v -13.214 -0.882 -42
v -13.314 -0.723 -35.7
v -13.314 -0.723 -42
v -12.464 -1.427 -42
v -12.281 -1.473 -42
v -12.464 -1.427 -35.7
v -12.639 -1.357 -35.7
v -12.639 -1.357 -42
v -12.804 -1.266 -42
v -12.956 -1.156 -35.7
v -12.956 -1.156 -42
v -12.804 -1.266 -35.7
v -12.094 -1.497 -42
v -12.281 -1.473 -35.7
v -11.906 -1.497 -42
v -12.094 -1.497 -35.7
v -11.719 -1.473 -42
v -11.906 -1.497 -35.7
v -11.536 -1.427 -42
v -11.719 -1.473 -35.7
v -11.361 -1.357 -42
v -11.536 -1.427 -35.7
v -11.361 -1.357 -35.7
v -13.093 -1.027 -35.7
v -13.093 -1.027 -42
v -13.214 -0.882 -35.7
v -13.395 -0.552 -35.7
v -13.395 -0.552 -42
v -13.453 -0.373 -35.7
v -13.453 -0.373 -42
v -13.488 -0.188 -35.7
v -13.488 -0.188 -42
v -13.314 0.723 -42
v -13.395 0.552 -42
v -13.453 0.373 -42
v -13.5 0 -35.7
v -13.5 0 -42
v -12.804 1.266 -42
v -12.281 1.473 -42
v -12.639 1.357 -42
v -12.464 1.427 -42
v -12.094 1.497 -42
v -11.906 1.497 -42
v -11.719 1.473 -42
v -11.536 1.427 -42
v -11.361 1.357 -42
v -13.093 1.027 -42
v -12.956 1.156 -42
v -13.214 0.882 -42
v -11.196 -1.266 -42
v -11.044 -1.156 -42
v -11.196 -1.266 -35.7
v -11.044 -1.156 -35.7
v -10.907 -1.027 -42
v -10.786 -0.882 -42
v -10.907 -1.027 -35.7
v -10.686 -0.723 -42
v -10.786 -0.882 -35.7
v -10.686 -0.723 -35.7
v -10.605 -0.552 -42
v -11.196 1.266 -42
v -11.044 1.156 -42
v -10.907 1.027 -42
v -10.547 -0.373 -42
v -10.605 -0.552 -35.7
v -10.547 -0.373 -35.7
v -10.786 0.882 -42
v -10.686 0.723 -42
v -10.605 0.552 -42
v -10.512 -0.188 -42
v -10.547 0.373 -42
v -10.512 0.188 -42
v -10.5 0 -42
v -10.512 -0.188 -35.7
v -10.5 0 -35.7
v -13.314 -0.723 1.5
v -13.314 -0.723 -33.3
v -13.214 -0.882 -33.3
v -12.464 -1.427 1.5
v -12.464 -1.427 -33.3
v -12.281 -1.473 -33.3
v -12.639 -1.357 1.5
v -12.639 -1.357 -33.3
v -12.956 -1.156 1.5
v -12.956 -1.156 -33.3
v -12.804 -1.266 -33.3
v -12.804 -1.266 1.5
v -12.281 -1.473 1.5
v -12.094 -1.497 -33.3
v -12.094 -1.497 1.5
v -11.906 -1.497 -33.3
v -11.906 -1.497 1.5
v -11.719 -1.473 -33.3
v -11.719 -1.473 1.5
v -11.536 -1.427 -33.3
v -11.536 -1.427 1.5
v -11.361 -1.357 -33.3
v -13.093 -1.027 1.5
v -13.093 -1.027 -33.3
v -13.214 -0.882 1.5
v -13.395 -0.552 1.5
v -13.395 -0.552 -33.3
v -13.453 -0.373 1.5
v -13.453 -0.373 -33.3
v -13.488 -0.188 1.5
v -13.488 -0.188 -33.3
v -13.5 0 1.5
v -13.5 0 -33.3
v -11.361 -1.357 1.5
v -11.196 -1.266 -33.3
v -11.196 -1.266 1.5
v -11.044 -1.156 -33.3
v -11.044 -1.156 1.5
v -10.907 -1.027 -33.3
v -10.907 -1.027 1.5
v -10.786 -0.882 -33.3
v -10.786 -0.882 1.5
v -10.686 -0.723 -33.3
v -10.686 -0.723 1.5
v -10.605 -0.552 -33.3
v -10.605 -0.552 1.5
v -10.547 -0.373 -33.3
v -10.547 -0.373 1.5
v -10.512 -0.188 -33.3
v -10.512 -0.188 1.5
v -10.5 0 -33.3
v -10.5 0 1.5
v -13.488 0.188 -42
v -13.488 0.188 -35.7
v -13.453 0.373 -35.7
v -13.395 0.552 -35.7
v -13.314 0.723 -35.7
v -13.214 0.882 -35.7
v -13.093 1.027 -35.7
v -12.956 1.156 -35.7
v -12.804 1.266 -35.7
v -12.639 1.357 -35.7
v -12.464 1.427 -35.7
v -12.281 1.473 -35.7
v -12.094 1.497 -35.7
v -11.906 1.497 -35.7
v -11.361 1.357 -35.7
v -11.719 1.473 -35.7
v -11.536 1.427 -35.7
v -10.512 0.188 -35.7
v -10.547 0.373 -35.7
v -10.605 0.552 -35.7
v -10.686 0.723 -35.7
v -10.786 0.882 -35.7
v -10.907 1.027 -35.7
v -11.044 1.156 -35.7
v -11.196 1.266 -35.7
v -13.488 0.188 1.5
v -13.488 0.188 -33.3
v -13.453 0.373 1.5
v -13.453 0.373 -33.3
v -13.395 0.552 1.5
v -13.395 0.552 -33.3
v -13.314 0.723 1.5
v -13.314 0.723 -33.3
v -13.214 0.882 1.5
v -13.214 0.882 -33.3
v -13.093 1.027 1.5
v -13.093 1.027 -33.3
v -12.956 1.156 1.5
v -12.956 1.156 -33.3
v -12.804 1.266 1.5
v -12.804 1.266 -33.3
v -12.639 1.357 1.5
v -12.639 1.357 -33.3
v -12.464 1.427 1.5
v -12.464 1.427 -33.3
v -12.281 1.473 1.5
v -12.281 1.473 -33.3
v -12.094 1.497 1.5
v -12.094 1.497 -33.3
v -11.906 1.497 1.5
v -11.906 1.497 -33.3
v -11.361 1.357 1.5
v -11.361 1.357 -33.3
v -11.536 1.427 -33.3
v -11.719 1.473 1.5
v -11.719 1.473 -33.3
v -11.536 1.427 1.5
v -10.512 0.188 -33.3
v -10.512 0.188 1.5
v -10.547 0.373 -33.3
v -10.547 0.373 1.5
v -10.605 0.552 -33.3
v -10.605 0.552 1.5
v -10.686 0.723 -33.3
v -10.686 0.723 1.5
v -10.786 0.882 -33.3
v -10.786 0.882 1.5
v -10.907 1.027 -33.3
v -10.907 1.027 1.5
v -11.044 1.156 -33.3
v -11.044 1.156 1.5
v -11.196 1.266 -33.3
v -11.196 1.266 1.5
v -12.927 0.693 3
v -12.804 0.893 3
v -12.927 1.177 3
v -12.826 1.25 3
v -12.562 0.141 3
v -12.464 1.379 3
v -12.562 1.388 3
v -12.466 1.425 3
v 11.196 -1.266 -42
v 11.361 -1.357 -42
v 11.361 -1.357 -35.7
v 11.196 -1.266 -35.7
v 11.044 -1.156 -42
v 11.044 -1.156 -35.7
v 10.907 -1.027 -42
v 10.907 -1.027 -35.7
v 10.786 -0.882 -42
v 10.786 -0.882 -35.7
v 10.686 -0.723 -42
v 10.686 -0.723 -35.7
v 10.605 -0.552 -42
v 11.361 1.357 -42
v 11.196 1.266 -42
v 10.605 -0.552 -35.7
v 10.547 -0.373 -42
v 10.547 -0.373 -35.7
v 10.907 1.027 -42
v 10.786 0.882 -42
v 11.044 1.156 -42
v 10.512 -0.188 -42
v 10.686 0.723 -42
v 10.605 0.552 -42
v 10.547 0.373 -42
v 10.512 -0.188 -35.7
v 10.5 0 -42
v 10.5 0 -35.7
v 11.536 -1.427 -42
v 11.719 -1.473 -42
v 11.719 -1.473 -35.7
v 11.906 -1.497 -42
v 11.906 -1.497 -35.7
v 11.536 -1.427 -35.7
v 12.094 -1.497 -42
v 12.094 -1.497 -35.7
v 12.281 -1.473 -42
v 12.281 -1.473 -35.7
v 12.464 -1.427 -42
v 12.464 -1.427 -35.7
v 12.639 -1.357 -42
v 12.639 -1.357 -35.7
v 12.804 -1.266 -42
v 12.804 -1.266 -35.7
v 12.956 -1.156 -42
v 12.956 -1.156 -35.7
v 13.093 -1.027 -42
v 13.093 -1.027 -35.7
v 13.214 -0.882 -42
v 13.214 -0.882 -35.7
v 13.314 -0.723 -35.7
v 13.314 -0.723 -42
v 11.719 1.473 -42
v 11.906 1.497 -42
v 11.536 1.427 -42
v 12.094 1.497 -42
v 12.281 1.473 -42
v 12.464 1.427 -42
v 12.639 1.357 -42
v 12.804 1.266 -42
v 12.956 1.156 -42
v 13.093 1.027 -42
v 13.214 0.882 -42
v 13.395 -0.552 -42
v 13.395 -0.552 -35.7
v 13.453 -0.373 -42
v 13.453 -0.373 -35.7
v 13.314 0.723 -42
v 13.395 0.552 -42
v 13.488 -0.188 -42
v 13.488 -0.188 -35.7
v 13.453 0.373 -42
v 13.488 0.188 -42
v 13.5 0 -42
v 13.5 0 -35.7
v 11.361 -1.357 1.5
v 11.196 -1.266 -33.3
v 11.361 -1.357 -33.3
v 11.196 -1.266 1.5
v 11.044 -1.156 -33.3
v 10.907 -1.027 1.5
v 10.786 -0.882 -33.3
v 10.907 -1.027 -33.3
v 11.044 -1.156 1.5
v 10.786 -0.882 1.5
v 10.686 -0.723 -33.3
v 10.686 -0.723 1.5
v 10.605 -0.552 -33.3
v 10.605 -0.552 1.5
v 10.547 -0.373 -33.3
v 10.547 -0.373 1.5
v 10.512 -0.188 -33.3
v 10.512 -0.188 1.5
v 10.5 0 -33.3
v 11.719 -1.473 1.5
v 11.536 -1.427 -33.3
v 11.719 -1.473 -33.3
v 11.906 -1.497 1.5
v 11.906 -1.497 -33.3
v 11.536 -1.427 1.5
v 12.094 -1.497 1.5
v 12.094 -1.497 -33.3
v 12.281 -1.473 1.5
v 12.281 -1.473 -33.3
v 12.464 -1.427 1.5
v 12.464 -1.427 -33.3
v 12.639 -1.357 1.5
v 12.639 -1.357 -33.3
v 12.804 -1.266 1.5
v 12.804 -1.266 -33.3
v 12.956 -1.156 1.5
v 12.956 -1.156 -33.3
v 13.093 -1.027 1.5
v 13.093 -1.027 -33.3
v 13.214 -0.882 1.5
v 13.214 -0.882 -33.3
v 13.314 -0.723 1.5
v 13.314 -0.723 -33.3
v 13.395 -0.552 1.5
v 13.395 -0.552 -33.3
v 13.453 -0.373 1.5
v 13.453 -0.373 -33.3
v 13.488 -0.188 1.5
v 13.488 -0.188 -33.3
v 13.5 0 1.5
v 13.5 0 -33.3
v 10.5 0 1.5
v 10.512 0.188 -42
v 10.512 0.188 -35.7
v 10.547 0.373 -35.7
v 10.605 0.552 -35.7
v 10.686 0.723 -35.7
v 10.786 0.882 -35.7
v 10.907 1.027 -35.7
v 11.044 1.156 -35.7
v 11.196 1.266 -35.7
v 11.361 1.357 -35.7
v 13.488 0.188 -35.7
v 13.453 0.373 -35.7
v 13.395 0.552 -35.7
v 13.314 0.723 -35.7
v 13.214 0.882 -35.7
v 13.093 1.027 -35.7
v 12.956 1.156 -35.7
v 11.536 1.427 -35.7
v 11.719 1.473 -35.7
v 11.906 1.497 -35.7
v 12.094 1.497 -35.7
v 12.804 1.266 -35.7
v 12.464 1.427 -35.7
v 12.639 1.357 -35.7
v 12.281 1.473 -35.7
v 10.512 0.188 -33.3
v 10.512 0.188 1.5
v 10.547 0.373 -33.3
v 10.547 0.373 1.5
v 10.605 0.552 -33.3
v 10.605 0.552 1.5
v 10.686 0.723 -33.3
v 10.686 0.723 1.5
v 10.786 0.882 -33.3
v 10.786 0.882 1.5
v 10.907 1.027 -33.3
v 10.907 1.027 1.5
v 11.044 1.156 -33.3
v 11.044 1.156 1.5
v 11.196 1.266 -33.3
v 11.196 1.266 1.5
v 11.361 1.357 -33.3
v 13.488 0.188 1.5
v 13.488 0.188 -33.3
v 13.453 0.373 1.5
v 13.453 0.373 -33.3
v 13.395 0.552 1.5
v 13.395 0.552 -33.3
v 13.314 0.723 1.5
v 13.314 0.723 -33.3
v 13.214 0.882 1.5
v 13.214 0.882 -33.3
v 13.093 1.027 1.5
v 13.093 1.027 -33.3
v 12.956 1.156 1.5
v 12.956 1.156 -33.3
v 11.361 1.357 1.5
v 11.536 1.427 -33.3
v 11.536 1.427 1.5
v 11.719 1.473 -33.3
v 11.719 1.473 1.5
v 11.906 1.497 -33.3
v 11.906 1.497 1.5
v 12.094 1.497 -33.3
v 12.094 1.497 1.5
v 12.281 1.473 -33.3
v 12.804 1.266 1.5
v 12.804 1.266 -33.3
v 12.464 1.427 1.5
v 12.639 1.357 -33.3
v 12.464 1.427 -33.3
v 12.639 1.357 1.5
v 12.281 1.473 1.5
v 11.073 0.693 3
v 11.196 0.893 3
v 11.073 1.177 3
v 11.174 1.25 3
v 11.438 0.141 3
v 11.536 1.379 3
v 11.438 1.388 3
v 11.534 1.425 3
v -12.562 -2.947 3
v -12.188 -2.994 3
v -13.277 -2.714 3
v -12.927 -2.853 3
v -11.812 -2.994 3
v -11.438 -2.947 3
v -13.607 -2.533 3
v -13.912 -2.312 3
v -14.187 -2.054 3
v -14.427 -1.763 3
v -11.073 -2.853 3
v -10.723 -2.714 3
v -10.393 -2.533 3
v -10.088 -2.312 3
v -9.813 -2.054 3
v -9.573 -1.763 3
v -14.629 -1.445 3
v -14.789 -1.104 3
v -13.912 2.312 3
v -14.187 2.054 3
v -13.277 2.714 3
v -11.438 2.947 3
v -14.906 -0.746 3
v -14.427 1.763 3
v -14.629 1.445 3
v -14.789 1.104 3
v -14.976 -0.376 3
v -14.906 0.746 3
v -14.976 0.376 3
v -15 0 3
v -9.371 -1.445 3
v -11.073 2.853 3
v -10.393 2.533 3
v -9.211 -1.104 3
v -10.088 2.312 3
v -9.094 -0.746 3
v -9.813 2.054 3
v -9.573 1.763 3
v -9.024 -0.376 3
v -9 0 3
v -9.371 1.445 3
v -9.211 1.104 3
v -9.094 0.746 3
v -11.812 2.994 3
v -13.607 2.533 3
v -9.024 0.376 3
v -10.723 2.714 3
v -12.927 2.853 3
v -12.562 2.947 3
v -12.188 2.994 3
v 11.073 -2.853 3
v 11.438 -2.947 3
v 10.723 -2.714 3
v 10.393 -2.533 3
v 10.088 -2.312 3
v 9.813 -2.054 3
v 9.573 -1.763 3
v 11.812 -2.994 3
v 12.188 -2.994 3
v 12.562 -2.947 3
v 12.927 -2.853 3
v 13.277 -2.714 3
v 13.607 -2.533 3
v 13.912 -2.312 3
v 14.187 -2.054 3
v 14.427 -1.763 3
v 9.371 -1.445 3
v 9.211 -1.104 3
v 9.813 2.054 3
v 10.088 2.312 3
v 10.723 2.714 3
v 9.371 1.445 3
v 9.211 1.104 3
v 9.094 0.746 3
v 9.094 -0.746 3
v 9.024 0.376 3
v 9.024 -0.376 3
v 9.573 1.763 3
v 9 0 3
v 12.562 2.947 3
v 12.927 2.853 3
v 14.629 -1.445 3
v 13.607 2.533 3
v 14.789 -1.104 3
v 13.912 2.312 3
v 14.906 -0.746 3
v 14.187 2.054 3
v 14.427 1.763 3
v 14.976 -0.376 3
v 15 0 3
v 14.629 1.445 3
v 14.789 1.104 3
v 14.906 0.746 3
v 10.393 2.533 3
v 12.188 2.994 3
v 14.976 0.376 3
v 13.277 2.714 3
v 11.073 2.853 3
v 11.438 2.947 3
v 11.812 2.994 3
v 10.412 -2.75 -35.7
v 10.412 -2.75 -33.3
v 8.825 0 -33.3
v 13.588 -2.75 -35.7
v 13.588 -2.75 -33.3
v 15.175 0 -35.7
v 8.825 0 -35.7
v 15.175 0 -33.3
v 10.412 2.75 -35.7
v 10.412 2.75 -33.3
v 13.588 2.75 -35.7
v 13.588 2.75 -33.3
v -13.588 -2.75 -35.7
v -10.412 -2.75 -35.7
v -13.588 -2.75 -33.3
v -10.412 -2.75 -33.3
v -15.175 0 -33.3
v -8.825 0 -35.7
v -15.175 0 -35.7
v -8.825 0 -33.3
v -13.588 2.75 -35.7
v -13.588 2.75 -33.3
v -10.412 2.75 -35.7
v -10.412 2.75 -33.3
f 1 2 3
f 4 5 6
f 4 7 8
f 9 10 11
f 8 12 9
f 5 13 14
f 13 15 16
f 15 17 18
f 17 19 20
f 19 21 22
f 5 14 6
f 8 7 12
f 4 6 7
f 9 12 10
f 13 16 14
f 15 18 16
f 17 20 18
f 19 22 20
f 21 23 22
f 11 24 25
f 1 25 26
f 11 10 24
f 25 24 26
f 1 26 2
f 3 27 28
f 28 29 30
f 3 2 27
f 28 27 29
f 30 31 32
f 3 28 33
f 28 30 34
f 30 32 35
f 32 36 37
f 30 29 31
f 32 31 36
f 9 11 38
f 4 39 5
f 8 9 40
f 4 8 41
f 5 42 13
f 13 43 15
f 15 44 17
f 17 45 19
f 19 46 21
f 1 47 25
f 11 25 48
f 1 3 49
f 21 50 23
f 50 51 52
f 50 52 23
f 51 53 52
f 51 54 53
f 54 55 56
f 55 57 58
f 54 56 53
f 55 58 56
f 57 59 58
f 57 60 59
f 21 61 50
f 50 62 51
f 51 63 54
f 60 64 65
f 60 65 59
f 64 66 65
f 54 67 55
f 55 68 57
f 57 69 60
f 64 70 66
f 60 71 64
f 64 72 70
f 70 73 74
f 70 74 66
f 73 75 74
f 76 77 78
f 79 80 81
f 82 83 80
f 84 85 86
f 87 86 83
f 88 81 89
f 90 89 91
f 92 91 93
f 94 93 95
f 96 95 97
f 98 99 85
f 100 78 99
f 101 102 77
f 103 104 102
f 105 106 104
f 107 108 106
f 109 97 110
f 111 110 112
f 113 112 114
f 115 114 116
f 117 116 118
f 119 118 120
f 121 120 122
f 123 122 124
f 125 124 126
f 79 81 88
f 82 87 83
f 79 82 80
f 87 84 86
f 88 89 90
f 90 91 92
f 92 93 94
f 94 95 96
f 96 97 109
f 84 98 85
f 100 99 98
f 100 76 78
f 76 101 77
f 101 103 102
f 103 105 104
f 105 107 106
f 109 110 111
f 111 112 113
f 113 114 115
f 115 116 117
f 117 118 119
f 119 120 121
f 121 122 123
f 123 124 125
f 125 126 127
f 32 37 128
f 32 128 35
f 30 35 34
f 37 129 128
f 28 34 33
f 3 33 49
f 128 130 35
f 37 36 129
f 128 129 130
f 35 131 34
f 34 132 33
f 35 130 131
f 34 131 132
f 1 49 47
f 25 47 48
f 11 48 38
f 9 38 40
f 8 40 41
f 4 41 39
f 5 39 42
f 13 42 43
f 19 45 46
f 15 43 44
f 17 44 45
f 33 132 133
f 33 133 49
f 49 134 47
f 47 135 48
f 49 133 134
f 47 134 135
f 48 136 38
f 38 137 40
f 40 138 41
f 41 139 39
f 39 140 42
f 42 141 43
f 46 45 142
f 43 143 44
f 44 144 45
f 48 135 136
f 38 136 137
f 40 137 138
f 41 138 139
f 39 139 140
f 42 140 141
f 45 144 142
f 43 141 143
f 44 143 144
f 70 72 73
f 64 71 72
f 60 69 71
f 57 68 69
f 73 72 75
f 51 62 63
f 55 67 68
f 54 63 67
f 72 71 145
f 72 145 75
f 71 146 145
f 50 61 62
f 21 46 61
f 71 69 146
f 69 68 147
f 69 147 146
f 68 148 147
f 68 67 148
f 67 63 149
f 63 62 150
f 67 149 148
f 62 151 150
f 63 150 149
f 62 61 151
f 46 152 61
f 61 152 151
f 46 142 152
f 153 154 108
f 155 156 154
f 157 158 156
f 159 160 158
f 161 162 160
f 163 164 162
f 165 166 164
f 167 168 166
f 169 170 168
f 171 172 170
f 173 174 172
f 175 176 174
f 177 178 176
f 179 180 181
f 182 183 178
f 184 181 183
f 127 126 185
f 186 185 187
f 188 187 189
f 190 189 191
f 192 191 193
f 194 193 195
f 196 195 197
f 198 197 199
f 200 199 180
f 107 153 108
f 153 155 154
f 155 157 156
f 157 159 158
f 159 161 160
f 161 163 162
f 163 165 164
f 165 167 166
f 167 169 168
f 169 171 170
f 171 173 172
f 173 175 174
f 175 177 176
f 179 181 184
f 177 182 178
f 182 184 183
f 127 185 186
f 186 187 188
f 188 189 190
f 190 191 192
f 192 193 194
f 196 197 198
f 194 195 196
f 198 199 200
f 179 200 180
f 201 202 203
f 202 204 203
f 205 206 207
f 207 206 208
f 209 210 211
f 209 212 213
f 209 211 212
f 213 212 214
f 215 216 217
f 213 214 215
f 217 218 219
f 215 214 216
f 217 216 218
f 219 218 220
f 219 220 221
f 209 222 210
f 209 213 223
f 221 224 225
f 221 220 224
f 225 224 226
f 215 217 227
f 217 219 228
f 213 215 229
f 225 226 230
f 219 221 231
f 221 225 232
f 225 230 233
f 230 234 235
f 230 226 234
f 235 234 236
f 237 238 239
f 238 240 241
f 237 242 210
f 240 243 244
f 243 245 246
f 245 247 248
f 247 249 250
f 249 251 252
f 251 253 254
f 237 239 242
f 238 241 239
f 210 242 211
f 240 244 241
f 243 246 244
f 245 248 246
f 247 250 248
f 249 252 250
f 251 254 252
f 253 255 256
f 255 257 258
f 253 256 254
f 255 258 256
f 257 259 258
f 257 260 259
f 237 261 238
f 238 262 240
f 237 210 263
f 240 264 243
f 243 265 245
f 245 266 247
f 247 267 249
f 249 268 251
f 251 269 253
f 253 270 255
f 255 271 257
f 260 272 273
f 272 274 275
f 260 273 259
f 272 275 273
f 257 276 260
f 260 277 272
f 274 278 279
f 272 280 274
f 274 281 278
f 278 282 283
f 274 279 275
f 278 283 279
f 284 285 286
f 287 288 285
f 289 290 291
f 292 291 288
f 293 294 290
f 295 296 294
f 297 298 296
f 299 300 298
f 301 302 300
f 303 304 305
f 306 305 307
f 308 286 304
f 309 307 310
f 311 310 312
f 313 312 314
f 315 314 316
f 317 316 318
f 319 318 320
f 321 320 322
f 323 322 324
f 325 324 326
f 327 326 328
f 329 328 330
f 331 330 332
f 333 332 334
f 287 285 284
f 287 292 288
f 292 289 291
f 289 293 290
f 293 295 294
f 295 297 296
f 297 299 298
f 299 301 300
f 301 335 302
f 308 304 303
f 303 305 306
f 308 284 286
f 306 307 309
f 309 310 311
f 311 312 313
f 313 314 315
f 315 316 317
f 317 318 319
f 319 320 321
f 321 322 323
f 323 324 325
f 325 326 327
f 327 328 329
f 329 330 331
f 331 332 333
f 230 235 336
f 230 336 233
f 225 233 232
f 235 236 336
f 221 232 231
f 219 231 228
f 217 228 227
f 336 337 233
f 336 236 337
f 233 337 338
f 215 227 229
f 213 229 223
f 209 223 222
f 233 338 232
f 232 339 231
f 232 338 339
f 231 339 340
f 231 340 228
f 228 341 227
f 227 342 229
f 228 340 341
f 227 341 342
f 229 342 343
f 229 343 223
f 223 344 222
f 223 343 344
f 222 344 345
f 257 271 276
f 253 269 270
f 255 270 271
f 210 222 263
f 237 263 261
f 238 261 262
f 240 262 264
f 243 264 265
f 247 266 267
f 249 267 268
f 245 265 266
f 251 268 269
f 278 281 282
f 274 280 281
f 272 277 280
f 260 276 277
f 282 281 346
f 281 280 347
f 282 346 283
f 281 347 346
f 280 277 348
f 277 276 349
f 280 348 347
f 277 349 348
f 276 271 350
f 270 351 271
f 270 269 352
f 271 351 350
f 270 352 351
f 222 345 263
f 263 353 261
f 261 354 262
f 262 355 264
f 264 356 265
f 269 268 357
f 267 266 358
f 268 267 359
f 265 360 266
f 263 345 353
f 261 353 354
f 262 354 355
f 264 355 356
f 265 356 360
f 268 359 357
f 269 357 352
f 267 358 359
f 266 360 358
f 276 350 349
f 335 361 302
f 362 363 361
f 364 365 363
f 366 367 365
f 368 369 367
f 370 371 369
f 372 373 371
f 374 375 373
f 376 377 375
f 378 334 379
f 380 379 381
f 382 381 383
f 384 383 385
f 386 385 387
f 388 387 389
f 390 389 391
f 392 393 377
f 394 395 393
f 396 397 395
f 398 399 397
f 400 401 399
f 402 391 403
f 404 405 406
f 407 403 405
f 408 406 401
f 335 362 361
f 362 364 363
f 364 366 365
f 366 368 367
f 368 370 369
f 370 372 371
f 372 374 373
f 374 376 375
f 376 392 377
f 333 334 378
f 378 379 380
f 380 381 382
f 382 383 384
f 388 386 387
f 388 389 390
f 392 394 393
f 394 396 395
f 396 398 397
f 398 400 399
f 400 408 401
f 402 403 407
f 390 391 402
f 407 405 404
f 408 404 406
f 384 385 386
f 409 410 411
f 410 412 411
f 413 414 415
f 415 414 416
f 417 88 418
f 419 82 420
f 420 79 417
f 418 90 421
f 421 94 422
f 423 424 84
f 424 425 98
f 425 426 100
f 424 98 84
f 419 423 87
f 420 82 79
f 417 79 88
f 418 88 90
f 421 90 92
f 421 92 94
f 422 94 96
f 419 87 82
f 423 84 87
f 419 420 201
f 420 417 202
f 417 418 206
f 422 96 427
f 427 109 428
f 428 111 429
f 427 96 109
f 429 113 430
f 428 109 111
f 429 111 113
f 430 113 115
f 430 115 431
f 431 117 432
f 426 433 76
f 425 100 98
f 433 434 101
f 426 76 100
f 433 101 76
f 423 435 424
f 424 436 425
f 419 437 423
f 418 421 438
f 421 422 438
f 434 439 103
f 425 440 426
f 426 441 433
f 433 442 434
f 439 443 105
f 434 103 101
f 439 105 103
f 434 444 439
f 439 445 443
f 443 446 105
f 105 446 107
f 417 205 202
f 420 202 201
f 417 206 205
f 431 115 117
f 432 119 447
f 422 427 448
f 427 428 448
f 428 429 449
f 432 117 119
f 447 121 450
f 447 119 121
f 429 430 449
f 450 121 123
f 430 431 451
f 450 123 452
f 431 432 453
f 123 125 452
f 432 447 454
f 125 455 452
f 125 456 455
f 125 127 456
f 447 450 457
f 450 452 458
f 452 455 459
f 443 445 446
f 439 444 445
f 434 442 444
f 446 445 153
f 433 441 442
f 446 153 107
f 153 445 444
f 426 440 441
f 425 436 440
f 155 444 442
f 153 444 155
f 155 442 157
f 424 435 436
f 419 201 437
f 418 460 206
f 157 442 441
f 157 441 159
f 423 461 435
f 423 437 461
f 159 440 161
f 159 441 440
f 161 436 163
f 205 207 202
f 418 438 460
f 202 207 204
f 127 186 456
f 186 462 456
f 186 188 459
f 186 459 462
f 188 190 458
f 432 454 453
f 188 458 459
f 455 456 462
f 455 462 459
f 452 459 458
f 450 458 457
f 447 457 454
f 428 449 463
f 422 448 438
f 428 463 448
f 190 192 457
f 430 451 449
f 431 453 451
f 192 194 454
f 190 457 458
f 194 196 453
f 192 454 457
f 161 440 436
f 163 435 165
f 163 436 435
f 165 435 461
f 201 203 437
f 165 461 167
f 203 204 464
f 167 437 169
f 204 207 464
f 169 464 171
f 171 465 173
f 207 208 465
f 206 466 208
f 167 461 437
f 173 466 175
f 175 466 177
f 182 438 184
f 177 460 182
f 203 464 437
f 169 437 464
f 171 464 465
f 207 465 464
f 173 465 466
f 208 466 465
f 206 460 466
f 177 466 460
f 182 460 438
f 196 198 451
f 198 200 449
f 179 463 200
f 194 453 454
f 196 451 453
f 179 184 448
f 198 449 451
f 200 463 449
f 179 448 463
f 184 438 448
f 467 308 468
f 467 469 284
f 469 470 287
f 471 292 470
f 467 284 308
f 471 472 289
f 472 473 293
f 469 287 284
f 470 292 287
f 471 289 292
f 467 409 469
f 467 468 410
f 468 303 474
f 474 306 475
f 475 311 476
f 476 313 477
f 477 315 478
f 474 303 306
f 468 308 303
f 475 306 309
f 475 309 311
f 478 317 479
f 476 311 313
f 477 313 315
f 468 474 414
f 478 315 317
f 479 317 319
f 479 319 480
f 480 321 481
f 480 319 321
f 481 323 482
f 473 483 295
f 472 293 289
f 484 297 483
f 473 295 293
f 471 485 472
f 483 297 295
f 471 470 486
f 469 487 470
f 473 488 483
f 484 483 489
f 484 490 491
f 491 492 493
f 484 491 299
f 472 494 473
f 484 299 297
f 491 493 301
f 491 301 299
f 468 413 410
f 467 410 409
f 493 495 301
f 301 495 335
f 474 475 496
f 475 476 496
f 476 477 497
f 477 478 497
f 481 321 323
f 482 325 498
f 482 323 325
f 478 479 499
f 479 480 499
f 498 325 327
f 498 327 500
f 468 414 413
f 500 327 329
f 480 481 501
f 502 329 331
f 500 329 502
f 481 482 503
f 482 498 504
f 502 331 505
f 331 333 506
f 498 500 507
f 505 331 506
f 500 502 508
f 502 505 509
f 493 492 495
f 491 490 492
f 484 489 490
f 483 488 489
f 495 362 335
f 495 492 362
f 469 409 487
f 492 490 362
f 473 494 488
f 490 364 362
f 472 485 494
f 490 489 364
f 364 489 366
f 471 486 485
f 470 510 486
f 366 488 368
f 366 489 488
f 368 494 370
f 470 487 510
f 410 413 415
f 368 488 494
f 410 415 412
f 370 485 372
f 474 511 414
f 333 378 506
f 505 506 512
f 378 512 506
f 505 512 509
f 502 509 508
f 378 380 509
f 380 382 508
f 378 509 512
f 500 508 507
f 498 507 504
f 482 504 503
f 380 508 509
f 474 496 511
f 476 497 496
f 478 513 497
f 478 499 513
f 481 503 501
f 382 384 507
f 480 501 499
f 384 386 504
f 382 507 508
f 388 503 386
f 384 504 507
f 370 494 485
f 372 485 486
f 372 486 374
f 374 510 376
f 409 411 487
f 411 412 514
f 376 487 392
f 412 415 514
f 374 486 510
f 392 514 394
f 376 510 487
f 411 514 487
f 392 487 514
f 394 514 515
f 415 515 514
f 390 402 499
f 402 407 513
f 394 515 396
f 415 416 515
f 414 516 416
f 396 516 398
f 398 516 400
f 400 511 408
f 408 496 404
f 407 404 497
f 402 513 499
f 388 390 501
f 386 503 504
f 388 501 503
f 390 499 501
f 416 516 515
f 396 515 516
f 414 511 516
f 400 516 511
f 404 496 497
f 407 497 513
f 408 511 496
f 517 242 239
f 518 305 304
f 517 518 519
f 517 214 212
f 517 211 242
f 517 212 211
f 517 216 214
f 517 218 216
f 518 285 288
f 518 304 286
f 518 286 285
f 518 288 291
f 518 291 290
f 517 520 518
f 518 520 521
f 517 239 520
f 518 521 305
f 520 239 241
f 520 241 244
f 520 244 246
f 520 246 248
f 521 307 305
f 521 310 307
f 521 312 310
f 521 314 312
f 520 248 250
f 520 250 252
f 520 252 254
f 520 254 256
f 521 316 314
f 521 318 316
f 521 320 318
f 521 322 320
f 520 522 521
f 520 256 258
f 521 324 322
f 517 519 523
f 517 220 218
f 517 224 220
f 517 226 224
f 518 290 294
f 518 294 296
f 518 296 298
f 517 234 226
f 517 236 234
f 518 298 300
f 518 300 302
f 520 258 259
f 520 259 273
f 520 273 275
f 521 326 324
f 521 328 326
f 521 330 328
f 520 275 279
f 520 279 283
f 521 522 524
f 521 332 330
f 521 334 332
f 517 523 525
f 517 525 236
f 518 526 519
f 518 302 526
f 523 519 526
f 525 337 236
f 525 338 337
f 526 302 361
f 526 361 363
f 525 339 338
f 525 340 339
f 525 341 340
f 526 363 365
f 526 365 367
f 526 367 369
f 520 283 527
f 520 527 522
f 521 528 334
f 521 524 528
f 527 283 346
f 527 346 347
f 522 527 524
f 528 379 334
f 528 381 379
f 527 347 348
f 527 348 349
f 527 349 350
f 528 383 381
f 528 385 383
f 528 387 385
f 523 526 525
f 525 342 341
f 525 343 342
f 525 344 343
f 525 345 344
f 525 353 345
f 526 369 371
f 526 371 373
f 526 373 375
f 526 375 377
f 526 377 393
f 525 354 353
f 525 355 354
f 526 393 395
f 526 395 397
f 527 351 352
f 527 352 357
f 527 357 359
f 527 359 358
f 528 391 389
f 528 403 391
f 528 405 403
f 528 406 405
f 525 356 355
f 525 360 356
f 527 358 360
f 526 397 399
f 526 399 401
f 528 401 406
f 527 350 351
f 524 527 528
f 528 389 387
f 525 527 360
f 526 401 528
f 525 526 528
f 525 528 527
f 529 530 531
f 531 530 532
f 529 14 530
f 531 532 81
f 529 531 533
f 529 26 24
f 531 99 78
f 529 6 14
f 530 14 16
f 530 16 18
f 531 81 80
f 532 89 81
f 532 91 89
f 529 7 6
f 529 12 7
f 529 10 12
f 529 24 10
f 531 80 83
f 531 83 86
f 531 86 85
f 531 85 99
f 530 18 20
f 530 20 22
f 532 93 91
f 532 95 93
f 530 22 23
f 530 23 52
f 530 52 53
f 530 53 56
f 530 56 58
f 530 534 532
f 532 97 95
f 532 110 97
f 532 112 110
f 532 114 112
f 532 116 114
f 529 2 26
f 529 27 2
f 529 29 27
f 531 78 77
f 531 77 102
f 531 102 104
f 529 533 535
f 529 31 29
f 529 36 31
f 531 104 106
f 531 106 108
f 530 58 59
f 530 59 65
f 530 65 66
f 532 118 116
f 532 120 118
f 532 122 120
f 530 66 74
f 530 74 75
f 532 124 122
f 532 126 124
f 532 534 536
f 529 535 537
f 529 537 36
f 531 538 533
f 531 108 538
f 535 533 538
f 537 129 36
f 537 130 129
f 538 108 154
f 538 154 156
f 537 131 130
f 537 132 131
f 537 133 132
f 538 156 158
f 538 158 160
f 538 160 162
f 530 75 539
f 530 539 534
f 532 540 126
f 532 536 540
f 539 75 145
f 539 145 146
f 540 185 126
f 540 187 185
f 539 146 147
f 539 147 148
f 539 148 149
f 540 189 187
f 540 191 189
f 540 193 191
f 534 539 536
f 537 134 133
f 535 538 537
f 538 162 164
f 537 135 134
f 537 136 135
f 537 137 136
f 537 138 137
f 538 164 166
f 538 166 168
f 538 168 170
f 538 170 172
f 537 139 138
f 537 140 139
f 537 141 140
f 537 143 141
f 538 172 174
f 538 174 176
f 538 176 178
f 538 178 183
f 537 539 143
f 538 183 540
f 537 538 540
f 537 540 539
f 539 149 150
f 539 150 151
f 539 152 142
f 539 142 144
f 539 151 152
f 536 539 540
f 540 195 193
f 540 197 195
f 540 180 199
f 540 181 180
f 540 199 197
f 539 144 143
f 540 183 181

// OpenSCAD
$fn = 50;

difference() {
	union() {
		translate(v = [-12, 0, 3]) {
			rotate(a = [0, 0, 0]) {
				difference() {
					union() {
						translate(v = [0, 0, -45.0]) {
							cylinder(h = 45, r = 1.5);
						}
						translate(v = [0, 0, -1.5]) {
							cylinder(h = 1.5, r1 = 1.5, r2 = 3);
						}
					}
					union();
				}
			}
		}
		translate(v = [-12, 0, -35.7]) {
			rotate(a = [0, 0, 0]) {
				difference() {
					union() {
						linear_extrude(height = 2.4) {
							polygon(points = [[3.1754264805429417, 0.0], [1.5877132402714713, 2.75], [-1.5877132402714702, 2.7500000000000004], [-3.1754264805429417, 3.888775875324659e-16], [-1.5877132402714722, -2.7499999999999996], [1.5877132402714687, -2.7500000000000013]]);
						}
					}
					union();
				}
			}
		}
		translate(v = [12, 0, 3]) {
			rotate(a = [0, 0, 0]) {
				difference() {
					union() {
						translate(v = [0, 0, -45.0]) {
							cylinder(h = 45, r = 1.5);
						}
						translate(v = [0, 0, -1.5]) {
							cylinder(h = 1.5, r1 = 1.5, r2 = 3);
						}
					}
					union();
				}
			}
		}
		translate(v = [12, 0, -35.7]) {
			rotate(a = [0, 0, 0]) {
				difference() {
					union() {
						linear_extrude(height = 2.4) {
							polygon(points = [[3.1754264805429417, 0.0], [1.5877132402714713, 2.75], [-1.5877132402714702, 2.7500000000000004], [-3.1754264805429417, 3.888775875324659e-16], [-1.5877132402714722, -2.7499999999999996], [1.5877132402714687, -2.7500000000000013]]);
						}
					}
					union();
				}
			}
		}
	}
	union();
}
